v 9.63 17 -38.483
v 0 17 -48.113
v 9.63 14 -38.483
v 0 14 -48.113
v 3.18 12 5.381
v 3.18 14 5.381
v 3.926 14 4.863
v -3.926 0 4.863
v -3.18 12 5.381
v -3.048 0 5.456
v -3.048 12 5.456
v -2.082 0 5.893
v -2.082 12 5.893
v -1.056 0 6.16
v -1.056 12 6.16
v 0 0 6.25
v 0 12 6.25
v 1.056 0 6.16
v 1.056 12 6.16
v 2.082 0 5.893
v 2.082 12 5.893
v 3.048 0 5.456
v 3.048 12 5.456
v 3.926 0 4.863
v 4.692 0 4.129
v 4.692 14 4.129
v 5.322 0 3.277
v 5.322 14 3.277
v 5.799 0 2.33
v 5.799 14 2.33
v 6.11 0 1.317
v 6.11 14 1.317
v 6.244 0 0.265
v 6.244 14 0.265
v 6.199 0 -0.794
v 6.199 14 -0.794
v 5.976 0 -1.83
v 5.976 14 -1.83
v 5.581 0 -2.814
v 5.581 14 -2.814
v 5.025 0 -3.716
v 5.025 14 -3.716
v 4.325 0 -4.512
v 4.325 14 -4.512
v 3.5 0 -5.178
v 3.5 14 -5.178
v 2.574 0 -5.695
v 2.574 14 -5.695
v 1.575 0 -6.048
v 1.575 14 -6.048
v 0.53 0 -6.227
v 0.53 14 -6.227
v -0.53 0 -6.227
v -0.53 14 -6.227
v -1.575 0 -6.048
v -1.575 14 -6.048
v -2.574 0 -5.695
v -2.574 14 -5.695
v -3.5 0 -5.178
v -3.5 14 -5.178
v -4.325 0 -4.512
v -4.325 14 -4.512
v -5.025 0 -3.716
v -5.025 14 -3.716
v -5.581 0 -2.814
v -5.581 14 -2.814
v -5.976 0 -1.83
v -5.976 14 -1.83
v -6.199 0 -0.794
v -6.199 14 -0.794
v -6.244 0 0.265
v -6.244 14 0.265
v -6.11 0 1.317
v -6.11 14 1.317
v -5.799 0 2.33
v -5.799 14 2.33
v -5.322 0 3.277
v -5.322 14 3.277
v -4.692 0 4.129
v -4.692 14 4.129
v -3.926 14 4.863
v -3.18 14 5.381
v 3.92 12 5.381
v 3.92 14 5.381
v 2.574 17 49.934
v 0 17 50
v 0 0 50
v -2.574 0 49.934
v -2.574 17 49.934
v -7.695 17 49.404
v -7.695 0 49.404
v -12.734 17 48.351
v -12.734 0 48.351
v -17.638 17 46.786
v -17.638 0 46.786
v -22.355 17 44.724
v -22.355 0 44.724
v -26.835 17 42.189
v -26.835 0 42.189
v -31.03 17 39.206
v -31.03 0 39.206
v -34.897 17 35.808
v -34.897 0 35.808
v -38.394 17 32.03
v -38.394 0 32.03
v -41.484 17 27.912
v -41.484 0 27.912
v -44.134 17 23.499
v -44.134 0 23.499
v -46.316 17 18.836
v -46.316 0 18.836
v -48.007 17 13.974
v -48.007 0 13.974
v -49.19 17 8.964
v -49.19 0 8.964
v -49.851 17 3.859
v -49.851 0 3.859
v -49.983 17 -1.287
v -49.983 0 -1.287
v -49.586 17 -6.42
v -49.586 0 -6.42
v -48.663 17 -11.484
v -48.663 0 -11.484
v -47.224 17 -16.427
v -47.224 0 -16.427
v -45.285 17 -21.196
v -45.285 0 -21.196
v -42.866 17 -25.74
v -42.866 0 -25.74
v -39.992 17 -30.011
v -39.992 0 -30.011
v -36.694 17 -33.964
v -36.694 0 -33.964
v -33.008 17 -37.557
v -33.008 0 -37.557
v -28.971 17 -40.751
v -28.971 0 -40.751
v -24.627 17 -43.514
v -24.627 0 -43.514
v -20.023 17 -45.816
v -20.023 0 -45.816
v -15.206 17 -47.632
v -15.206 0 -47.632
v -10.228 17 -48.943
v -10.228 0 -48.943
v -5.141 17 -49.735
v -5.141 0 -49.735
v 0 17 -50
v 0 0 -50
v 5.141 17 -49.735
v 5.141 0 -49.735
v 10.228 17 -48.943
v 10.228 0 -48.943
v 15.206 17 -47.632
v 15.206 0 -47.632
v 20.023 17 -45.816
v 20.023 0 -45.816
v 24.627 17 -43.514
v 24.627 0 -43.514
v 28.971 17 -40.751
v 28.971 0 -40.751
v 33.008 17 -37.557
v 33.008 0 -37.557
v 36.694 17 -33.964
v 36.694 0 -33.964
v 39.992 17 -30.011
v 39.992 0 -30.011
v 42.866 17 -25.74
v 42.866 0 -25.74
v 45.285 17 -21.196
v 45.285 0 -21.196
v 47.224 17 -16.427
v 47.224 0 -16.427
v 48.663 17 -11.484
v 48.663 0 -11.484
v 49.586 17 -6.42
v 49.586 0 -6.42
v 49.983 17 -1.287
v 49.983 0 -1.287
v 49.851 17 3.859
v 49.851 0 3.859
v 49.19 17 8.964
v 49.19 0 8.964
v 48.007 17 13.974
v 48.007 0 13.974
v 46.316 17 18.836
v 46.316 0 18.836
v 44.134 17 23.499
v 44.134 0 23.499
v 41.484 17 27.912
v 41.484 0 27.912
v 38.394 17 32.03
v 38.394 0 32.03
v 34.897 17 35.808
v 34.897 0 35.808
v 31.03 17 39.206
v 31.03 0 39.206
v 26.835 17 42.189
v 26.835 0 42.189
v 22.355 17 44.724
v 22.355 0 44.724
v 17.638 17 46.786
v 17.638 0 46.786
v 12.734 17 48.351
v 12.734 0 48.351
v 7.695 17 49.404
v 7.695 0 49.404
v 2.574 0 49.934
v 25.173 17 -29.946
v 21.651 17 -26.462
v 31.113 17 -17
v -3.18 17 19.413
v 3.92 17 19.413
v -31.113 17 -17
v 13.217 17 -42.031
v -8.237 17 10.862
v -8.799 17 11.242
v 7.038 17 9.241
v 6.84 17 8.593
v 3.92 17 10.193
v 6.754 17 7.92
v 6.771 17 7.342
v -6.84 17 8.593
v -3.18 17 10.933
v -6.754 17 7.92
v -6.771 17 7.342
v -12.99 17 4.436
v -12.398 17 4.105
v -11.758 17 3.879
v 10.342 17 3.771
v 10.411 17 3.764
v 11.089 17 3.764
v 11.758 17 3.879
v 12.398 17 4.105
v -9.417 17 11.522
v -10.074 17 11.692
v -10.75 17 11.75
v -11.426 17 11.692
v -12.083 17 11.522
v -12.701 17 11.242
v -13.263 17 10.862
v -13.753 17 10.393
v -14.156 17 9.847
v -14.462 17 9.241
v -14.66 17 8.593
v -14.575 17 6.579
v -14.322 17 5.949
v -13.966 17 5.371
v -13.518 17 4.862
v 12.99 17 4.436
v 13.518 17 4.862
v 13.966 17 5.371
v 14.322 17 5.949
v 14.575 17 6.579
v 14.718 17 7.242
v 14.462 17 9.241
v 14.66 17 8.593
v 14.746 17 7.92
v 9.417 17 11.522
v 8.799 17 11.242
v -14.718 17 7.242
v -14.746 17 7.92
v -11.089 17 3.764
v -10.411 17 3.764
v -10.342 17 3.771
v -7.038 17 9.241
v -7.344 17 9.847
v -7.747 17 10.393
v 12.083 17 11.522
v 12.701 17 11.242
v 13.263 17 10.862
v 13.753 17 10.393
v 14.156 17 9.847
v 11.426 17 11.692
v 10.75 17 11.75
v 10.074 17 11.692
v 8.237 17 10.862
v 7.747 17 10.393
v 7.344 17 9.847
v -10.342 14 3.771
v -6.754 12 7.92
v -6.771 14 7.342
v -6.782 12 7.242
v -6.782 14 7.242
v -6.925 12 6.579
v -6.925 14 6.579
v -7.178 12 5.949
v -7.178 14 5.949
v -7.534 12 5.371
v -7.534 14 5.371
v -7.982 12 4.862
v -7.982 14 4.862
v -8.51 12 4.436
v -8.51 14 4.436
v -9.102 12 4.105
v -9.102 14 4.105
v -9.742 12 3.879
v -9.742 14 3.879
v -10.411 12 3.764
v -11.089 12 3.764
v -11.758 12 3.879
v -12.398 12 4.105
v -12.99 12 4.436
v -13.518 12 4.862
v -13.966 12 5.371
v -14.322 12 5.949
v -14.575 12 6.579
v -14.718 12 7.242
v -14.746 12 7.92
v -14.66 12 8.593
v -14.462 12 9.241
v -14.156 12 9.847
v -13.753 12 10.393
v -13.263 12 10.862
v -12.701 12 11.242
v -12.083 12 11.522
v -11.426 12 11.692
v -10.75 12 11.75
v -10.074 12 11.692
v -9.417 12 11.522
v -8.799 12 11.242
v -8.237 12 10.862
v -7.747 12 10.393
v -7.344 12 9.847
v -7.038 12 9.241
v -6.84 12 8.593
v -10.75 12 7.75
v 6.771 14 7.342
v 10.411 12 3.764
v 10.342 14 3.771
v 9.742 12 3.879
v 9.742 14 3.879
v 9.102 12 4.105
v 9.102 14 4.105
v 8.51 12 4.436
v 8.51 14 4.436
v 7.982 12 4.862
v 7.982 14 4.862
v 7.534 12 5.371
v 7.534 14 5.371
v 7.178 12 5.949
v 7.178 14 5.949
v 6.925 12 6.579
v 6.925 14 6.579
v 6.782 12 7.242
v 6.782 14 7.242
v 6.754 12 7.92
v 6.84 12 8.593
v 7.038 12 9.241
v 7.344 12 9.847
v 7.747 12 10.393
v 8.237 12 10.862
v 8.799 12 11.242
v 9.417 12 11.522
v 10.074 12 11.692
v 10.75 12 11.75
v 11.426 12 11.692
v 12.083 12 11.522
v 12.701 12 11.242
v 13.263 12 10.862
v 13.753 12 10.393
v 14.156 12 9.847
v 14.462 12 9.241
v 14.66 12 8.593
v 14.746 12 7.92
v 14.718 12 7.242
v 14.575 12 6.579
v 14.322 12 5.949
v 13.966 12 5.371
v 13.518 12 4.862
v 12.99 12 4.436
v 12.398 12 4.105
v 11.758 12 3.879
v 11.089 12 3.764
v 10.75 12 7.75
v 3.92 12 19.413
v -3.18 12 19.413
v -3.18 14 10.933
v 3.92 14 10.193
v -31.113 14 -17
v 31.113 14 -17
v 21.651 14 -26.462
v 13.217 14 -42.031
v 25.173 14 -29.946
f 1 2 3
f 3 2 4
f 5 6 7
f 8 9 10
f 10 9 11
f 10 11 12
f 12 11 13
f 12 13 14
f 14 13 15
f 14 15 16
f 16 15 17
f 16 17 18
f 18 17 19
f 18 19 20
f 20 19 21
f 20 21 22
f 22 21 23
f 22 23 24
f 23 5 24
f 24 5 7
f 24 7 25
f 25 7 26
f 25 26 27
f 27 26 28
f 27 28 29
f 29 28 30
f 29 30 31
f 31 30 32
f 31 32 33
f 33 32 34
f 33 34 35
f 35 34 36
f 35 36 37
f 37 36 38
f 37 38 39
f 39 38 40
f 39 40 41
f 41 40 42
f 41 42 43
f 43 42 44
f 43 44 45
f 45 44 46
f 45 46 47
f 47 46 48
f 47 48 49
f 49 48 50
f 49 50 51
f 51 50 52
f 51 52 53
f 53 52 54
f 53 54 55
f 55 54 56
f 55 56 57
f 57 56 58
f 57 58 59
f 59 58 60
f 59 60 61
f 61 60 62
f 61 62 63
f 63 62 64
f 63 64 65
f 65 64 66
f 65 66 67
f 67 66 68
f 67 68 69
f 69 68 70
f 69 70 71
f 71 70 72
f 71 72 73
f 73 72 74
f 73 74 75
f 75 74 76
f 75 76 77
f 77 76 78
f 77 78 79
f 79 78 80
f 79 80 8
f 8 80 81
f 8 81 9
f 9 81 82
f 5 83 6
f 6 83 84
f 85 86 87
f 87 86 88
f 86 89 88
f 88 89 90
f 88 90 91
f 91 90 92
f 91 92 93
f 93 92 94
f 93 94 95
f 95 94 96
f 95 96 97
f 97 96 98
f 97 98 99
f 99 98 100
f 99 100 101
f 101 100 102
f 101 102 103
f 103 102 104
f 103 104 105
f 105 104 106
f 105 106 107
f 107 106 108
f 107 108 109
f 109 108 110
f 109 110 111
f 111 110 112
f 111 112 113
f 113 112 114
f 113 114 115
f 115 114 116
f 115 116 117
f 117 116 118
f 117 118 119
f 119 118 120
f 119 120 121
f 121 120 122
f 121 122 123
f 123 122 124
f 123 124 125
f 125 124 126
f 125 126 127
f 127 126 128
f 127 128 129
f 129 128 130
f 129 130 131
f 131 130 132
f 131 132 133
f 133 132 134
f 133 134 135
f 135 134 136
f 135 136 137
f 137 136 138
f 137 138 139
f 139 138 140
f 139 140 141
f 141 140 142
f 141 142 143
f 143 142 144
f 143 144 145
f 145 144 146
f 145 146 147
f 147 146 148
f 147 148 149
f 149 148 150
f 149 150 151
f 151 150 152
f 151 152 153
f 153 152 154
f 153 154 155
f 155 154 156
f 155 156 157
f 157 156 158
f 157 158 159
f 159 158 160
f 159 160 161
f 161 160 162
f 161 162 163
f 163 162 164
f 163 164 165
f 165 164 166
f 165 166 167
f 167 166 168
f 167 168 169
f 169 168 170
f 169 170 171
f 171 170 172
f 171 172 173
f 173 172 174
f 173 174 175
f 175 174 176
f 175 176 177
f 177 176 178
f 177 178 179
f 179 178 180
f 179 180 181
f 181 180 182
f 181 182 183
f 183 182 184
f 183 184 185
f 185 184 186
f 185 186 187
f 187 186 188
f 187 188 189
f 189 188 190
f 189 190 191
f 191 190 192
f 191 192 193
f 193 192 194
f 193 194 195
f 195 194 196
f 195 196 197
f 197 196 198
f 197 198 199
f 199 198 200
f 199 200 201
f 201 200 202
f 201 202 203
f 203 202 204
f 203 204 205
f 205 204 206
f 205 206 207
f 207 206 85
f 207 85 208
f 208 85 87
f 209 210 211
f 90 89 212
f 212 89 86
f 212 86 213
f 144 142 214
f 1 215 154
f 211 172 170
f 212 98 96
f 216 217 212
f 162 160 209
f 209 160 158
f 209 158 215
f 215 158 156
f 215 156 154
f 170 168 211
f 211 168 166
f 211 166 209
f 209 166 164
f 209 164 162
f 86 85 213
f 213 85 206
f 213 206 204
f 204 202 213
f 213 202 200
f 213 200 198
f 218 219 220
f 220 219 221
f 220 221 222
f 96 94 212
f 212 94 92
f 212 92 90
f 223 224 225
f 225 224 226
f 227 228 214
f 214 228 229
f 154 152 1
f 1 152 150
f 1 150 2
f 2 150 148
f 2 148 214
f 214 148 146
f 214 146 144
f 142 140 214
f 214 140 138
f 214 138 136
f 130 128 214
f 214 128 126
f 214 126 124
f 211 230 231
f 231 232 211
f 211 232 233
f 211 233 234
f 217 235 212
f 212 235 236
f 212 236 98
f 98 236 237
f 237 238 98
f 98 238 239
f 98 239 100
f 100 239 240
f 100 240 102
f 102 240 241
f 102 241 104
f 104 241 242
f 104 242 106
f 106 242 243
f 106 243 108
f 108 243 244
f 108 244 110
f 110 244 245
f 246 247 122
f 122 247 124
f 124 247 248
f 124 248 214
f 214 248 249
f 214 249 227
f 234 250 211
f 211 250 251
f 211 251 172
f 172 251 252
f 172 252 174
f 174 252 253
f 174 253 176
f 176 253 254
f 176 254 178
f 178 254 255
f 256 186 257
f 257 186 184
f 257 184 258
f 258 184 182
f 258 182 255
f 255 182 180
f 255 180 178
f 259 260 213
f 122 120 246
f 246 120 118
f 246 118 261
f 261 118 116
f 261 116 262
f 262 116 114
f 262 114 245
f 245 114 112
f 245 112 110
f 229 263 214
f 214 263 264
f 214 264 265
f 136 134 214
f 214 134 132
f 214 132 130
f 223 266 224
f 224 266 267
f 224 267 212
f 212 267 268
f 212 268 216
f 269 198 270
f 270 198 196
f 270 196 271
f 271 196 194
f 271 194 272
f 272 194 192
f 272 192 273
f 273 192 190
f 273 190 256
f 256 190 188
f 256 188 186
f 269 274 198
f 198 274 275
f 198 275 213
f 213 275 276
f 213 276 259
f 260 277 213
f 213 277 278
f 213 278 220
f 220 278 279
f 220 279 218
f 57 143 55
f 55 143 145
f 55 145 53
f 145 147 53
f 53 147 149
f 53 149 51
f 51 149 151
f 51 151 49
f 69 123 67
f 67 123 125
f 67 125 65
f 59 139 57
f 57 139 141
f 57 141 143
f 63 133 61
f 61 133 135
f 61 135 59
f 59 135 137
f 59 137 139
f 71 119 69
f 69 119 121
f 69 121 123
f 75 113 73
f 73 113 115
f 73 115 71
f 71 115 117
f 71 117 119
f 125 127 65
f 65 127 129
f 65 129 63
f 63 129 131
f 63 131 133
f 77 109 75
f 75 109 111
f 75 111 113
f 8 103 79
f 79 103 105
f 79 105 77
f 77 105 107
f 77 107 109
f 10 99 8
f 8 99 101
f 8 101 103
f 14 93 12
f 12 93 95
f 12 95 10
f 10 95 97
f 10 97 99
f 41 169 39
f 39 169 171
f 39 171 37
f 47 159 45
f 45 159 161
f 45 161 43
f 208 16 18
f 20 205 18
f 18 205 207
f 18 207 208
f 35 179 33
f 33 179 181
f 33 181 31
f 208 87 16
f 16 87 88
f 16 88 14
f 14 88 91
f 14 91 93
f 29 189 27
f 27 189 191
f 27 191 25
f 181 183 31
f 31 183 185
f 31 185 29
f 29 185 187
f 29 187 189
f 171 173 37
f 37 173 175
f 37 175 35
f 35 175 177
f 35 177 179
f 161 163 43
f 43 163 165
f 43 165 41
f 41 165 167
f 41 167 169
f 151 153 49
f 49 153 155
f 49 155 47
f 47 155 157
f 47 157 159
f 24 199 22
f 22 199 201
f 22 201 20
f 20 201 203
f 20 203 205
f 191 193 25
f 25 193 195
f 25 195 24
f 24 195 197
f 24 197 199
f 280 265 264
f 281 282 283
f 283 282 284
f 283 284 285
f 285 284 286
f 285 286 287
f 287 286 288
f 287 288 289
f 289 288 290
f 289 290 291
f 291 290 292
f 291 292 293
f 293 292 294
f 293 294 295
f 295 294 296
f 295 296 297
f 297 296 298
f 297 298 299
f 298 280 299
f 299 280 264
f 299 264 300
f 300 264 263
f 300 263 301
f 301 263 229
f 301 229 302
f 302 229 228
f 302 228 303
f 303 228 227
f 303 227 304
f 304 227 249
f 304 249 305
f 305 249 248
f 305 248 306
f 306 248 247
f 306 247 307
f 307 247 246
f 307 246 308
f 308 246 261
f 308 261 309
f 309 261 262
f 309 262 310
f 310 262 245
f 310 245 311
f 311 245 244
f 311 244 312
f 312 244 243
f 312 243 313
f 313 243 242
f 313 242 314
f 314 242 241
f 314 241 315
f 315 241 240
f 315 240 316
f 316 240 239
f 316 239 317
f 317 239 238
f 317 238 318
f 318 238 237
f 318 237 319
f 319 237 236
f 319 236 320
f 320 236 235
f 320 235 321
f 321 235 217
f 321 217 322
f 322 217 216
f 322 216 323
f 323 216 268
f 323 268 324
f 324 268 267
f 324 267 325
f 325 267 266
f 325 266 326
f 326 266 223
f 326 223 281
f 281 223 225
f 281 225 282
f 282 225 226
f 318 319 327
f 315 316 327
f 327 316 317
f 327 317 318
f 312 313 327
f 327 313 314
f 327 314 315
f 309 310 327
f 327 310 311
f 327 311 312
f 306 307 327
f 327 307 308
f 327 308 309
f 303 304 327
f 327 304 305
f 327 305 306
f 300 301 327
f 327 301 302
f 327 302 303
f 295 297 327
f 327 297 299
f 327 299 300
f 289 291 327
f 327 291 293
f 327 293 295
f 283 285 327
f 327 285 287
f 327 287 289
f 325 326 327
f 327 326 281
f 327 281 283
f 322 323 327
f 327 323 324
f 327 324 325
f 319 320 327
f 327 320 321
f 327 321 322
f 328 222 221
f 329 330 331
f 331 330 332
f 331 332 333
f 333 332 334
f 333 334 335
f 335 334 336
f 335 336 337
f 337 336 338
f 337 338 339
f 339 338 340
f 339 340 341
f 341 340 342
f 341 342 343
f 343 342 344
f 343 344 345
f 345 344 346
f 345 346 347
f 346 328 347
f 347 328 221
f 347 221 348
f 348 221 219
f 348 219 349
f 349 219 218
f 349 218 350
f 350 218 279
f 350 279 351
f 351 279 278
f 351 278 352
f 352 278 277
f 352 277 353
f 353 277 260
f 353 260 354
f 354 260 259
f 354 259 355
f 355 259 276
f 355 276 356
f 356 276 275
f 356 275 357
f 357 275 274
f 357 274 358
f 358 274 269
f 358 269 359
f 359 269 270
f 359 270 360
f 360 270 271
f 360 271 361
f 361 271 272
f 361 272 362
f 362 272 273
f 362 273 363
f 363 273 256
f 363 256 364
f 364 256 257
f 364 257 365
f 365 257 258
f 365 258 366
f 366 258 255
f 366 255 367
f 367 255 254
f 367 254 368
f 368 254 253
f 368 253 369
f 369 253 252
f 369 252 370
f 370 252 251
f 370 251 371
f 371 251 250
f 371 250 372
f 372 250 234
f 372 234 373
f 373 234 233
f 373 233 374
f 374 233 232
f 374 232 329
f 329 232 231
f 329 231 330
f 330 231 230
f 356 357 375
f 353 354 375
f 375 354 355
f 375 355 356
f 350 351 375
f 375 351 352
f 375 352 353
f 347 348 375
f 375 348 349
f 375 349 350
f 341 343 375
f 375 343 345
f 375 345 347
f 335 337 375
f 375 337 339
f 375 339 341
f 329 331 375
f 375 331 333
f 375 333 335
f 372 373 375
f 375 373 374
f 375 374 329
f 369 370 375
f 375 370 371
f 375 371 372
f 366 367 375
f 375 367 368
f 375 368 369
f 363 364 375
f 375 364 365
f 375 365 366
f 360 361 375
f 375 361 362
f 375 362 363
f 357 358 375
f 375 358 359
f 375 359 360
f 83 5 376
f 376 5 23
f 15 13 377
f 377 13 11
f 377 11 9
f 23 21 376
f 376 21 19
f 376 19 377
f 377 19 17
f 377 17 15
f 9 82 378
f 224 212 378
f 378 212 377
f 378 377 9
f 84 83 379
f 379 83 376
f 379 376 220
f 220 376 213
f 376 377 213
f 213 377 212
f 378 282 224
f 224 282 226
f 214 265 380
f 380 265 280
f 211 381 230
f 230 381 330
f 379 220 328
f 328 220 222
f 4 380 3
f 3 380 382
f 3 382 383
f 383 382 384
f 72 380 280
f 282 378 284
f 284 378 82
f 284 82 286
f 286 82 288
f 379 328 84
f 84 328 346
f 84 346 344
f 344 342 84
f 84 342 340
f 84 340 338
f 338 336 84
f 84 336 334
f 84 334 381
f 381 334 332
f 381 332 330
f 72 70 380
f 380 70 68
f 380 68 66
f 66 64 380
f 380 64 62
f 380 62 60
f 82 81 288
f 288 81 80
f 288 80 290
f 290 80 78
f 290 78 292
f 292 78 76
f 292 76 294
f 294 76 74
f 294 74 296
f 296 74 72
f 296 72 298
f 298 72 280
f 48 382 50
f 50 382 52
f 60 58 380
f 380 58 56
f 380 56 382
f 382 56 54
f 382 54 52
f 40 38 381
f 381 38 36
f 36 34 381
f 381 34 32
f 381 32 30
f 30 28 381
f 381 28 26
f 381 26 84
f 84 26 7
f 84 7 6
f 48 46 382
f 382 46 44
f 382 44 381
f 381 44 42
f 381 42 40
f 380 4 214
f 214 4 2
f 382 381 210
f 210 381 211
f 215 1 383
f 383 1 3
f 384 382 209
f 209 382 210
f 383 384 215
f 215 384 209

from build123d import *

# Parameters (mm, degrees)
SKETCH2_R           = 50
BOSS_EXTRUDE1_DEPTH = 17
SKETCH4_R           = 6.25
CUT_EXTRUDE1_DEPTH  = 17
SKETCH7_R           = 4
CUT_EXTRUDE2_DEPTH  = 5
SKETCH8_W           = 7.099474729
SKETCH8_H           = 14.03212915
CUT_EXTRUDE3_DEPTH  = 5
CUT_EXTRUDE4_DEPTH  = 3
CUT_EXTRUDE5_DEPTH  = 3


with BuildPart() as part:
    # Sketch2 → Boss-Extrude1 (new body)
    with BuildSketch(Plane(origin=(0, 0, 0), x_dir=(1, 0, 0), z_dir=(0, 1, 0))):
        with Locations(Location((0, 0, 0), (0, 0, 270))):
            Circle(SKETCH2_R)
    extrude(amount=BOSS_EXTRUDE1_DEPTH)

    # Sketch4 → Cut-Extrude1 (cut)
    with BuildSketch(Plane(origin=(0, 17, 0), x_dir=(1, 0, 0), z_dir=(0, 1, 0))):
        with Locations(Location((0, 0, 0), (0, 0, 270))):
            Circle(SKETCH4_R)
    extrude(amount=-CUT_EXTRUDE1_DEPTH, mode=Mode.SUBTRACT)

    # Sketch7 → Cut-Extrude2 (cut)
    with BuildSketch(Plane(origin=(0, 17, 0), x_dir=(1, 0, 0), z_dir=(0, 1, 0))):
        with Locations(Location((-10.75, -7.75, 0), (0, 0, 270))):
            Circle(SKETCH7_R)
    cut_extrude2 = extrude(amount=-CUT_EXTRUDE2_DEPTH, mode=Mode.SUBTRACT)

    # Mirror1: Cut-Extrude2 across plane
    add(cut_extrude2.mirror(Plane(origin=(0, 0, 0), x_dir=(0, 0, 1), z_dir=(1, 0, 0))), mode=Mode.SUBTRACT)

    # Sketch8 → Cut-Extrude3 (cut)
    with BuildSketch(Plane(origin=(0, 17, 0), x_dir=(1, 0, 0), z_dir=(0, 1, 0))):
        with Locations((0.370179164, -12.396855376)):
            Rectangle(SKETCH8_W, SKETCH8_H)
    extrude(amount=-CUT_EXTRUDE3_DEPTH, mode=Mode.SUBTRACT)

    # Sketch9 → Cut-Extrude4 (cut)
    with BuildSketch(Plane(origin=(0, 17, 0), x_dir=(1, 0, 0), z_dir=(0, 1, 0))):
        Polygon((-31.112706744, 17), (-8.372e-06, 48.112698372), (31.11269, 17), (-8.372e-06, -14.112698372), align=None)
    extrude(amount=-CUT_EXTRUDE4_DEPTH, mode=Mode.SUBTRACT)

    # Sketch6 → Cut-Extrude5 (cut)
    with BuildSketch(Plane(origin=(0, 17, 0), x_dir=(1, 0, 0), z_dir=(0, 1, 0))):
        Polygon((-5.977874391, 23.042765738), (5.977874391, 10.957234262), (25.17254203, 29.945776443), (13.216793249, 42.03130792), align=None)
    extrude(amount=-CUT_EXTRUDE5_DEPTH, mode=Mode.SUBTRACT)


solid = part.part
